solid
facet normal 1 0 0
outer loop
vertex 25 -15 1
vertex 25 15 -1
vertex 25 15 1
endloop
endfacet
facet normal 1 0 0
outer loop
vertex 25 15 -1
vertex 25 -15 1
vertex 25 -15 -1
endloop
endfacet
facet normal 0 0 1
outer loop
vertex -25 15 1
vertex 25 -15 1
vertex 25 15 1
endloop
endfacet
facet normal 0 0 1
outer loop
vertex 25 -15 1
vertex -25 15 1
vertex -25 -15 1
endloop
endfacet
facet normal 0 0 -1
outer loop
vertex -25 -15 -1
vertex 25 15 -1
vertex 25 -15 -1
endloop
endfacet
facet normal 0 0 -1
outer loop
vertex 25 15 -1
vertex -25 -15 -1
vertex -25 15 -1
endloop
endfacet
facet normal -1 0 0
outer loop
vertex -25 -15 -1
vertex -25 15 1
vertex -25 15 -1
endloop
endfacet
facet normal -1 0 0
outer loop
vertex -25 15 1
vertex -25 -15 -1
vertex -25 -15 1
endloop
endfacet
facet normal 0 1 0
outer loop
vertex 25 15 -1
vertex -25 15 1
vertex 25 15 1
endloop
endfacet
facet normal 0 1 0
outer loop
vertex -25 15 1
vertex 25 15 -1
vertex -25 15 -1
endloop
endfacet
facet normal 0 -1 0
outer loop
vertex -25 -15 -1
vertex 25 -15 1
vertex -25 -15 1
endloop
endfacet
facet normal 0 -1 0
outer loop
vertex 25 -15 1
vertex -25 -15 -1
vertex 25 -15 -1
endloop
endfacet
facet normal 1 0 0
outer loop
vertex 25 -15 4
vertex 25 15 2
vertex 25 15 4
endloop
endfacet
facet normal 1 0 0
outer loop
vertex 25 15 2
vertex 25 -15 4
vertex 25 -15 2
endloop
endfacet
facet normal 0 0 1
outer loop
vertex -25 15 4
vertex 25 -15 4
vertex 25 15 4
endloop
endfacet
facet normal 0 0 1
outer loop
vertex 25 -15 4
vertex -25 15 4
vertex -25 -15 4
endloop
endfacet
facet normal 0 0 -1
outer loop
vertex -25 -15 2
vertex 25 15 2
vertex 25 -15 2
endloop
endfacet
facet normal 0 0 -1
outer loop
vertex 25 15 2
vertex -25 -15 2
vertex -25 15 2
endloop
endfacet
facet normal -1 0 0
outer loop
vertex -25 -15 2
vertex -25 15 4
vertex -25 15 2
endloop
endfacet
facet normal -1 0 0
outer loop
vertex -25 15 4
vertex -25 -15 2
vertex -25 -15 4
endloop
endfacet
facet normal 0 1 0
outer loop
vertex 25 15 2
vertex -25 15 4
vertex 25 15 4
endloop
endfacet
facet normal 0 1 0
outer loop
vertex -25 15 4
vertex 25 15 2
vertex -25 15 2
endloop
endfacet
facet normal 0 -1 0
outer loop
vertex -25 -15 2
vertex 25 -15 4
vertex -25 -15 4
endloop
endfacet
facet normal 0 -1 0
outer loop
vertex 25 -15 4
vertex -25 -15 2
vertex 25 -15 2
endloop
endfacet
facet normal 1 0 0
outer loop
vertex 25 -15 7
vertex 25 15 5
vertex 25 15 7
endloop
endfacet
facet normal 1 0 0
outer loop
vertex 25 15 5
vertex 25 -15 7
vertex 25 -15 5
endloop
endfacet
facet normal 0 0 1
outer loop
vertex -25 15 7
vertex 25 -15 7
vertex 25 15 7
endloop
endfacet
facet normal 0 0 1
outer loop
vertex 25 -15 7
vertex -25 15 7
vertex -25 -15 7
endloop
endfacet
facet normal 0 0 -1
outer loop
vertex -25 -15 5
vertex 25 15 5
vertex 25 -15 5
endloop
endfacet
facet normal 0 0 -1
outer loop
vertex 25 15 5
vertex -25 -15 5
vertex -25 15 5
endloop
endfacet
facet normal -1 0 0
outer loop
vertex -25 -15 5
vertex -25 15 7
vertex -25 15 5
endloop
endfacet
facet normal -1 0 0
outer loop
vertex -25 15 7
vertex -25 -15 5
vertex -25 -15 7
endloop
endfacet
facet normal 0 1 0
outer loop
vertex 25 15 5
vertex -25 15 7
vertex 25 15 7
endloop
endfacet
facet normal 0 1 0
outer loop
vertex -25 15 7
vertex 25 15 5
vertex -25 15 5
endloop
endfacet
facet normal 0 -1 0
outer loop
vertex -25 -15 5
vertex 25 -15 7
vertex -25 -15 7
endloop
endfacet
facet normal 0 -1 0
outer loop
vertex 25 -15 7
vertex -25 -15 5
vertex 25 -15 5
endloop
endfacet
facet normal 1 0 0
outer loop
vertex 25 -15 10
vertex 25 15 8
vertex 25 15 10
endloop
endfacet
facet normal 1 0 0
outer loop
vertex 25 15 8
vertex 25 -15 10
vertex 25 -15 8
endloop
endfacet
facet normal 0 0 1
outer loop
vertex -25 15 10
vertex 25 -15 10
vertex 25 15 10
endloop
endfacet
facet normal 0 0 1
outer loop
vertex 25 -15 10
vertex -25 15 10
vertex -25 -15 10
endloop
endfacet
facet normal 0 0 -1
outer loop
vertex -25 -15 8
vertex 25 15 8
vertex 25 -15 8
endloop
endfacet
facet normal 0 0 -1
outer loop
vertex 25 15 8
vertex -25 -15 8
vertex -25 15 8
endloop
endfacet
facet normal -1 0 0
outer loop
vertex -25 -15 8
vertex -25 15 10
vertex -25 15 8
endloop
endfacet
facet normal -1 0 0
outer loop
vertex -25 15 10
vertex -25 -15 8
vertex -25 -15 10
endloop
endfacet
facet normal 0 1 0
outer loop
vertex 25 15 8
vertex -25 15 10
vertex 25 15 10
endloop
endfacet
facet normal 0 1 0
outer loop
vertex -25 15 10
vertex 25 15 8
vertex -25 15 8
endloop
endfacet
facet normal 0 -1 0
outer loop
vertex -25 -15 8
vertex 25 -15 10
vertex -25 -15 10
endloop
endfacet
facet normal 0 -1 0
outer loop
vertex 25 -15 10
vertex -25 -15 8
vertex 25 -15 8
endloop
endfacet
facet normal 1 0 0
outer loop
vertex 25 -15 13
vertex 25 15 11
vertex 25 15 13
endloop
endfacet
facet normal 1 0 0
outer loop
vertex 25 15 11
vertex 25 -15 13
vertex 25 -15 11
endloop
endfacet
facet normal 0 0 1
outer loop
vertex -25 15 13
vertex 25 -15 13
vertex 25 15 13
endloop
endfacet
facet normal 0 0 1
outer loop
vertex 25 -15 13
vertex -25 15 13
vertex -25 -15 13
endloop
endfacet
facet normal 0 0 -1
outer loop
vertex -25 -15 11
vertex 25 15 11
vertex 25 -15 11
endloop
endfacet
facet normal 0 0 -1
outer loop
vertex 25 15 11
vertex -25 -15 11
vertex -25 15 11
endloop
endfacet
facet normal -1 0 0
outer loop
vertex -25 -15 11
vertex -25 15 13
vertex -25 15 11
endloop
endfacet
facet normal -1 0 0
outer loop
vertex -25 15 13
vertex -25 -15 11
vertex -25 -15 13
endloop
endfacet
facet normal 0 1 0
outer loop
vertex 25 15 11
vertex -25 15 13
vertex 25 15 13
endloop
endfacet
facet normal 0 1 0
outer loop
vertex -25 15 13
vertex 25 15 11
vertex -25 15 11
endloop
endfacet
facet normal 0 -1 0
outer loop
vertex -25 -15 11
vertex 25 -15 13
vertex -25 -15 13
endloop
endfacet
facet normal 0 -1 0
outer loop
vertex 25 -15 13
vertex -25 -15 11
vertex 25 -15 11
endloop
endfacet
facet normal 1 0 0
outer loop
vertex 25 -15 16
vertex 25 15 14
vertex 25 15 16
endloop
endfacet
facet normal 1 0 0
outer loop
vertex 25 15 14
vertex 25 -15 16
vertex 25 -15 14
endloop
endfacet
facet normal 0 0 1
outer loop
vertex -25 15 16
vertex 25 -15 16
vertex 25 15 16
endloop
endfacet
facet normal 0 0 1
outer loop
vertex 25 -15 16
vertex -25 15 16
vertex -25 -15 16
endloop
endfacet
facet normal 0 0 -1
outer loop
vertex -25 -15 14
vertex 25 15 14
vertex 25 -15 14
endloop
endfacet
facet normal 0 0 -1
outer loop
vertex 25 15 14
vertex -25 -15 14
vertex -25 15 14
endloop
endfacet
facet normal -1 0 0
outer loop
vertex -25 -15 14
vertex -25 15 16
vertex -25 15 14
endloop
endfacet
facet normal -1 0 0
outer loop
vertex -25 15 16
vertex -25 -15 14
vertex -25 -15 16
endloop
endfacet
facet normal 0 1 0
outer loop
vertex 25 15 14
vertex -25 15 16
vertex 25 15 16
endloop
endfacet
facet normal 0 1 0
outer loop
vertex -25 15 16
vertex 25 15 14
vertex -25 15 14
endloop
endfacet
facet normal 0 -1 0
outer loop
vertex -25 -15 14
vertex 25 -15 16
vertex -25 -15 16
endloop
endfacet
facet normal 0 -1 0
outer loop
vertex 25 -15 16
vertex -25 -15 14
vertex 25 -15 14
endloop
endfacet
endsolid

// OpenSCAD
// Define the dimensions of the flat plate
module flat_plate(length = 50, width = 30, thickness = 2) {
    cube([length, width, thickness], center = true);
}

// Generate the 3D model
// Adjusted to ensure alignment, parallel orientation, consistent spacing, and correct overall height
module flexible_coupling() {
    for (i = [0:5]) {
        translate([0, 0, i * (2 + 1)]) // Stack plates with a consistent 1mm gap between them
            flat_plate();
    }
}

// Call the main module to render the model
flexible_coupling();
